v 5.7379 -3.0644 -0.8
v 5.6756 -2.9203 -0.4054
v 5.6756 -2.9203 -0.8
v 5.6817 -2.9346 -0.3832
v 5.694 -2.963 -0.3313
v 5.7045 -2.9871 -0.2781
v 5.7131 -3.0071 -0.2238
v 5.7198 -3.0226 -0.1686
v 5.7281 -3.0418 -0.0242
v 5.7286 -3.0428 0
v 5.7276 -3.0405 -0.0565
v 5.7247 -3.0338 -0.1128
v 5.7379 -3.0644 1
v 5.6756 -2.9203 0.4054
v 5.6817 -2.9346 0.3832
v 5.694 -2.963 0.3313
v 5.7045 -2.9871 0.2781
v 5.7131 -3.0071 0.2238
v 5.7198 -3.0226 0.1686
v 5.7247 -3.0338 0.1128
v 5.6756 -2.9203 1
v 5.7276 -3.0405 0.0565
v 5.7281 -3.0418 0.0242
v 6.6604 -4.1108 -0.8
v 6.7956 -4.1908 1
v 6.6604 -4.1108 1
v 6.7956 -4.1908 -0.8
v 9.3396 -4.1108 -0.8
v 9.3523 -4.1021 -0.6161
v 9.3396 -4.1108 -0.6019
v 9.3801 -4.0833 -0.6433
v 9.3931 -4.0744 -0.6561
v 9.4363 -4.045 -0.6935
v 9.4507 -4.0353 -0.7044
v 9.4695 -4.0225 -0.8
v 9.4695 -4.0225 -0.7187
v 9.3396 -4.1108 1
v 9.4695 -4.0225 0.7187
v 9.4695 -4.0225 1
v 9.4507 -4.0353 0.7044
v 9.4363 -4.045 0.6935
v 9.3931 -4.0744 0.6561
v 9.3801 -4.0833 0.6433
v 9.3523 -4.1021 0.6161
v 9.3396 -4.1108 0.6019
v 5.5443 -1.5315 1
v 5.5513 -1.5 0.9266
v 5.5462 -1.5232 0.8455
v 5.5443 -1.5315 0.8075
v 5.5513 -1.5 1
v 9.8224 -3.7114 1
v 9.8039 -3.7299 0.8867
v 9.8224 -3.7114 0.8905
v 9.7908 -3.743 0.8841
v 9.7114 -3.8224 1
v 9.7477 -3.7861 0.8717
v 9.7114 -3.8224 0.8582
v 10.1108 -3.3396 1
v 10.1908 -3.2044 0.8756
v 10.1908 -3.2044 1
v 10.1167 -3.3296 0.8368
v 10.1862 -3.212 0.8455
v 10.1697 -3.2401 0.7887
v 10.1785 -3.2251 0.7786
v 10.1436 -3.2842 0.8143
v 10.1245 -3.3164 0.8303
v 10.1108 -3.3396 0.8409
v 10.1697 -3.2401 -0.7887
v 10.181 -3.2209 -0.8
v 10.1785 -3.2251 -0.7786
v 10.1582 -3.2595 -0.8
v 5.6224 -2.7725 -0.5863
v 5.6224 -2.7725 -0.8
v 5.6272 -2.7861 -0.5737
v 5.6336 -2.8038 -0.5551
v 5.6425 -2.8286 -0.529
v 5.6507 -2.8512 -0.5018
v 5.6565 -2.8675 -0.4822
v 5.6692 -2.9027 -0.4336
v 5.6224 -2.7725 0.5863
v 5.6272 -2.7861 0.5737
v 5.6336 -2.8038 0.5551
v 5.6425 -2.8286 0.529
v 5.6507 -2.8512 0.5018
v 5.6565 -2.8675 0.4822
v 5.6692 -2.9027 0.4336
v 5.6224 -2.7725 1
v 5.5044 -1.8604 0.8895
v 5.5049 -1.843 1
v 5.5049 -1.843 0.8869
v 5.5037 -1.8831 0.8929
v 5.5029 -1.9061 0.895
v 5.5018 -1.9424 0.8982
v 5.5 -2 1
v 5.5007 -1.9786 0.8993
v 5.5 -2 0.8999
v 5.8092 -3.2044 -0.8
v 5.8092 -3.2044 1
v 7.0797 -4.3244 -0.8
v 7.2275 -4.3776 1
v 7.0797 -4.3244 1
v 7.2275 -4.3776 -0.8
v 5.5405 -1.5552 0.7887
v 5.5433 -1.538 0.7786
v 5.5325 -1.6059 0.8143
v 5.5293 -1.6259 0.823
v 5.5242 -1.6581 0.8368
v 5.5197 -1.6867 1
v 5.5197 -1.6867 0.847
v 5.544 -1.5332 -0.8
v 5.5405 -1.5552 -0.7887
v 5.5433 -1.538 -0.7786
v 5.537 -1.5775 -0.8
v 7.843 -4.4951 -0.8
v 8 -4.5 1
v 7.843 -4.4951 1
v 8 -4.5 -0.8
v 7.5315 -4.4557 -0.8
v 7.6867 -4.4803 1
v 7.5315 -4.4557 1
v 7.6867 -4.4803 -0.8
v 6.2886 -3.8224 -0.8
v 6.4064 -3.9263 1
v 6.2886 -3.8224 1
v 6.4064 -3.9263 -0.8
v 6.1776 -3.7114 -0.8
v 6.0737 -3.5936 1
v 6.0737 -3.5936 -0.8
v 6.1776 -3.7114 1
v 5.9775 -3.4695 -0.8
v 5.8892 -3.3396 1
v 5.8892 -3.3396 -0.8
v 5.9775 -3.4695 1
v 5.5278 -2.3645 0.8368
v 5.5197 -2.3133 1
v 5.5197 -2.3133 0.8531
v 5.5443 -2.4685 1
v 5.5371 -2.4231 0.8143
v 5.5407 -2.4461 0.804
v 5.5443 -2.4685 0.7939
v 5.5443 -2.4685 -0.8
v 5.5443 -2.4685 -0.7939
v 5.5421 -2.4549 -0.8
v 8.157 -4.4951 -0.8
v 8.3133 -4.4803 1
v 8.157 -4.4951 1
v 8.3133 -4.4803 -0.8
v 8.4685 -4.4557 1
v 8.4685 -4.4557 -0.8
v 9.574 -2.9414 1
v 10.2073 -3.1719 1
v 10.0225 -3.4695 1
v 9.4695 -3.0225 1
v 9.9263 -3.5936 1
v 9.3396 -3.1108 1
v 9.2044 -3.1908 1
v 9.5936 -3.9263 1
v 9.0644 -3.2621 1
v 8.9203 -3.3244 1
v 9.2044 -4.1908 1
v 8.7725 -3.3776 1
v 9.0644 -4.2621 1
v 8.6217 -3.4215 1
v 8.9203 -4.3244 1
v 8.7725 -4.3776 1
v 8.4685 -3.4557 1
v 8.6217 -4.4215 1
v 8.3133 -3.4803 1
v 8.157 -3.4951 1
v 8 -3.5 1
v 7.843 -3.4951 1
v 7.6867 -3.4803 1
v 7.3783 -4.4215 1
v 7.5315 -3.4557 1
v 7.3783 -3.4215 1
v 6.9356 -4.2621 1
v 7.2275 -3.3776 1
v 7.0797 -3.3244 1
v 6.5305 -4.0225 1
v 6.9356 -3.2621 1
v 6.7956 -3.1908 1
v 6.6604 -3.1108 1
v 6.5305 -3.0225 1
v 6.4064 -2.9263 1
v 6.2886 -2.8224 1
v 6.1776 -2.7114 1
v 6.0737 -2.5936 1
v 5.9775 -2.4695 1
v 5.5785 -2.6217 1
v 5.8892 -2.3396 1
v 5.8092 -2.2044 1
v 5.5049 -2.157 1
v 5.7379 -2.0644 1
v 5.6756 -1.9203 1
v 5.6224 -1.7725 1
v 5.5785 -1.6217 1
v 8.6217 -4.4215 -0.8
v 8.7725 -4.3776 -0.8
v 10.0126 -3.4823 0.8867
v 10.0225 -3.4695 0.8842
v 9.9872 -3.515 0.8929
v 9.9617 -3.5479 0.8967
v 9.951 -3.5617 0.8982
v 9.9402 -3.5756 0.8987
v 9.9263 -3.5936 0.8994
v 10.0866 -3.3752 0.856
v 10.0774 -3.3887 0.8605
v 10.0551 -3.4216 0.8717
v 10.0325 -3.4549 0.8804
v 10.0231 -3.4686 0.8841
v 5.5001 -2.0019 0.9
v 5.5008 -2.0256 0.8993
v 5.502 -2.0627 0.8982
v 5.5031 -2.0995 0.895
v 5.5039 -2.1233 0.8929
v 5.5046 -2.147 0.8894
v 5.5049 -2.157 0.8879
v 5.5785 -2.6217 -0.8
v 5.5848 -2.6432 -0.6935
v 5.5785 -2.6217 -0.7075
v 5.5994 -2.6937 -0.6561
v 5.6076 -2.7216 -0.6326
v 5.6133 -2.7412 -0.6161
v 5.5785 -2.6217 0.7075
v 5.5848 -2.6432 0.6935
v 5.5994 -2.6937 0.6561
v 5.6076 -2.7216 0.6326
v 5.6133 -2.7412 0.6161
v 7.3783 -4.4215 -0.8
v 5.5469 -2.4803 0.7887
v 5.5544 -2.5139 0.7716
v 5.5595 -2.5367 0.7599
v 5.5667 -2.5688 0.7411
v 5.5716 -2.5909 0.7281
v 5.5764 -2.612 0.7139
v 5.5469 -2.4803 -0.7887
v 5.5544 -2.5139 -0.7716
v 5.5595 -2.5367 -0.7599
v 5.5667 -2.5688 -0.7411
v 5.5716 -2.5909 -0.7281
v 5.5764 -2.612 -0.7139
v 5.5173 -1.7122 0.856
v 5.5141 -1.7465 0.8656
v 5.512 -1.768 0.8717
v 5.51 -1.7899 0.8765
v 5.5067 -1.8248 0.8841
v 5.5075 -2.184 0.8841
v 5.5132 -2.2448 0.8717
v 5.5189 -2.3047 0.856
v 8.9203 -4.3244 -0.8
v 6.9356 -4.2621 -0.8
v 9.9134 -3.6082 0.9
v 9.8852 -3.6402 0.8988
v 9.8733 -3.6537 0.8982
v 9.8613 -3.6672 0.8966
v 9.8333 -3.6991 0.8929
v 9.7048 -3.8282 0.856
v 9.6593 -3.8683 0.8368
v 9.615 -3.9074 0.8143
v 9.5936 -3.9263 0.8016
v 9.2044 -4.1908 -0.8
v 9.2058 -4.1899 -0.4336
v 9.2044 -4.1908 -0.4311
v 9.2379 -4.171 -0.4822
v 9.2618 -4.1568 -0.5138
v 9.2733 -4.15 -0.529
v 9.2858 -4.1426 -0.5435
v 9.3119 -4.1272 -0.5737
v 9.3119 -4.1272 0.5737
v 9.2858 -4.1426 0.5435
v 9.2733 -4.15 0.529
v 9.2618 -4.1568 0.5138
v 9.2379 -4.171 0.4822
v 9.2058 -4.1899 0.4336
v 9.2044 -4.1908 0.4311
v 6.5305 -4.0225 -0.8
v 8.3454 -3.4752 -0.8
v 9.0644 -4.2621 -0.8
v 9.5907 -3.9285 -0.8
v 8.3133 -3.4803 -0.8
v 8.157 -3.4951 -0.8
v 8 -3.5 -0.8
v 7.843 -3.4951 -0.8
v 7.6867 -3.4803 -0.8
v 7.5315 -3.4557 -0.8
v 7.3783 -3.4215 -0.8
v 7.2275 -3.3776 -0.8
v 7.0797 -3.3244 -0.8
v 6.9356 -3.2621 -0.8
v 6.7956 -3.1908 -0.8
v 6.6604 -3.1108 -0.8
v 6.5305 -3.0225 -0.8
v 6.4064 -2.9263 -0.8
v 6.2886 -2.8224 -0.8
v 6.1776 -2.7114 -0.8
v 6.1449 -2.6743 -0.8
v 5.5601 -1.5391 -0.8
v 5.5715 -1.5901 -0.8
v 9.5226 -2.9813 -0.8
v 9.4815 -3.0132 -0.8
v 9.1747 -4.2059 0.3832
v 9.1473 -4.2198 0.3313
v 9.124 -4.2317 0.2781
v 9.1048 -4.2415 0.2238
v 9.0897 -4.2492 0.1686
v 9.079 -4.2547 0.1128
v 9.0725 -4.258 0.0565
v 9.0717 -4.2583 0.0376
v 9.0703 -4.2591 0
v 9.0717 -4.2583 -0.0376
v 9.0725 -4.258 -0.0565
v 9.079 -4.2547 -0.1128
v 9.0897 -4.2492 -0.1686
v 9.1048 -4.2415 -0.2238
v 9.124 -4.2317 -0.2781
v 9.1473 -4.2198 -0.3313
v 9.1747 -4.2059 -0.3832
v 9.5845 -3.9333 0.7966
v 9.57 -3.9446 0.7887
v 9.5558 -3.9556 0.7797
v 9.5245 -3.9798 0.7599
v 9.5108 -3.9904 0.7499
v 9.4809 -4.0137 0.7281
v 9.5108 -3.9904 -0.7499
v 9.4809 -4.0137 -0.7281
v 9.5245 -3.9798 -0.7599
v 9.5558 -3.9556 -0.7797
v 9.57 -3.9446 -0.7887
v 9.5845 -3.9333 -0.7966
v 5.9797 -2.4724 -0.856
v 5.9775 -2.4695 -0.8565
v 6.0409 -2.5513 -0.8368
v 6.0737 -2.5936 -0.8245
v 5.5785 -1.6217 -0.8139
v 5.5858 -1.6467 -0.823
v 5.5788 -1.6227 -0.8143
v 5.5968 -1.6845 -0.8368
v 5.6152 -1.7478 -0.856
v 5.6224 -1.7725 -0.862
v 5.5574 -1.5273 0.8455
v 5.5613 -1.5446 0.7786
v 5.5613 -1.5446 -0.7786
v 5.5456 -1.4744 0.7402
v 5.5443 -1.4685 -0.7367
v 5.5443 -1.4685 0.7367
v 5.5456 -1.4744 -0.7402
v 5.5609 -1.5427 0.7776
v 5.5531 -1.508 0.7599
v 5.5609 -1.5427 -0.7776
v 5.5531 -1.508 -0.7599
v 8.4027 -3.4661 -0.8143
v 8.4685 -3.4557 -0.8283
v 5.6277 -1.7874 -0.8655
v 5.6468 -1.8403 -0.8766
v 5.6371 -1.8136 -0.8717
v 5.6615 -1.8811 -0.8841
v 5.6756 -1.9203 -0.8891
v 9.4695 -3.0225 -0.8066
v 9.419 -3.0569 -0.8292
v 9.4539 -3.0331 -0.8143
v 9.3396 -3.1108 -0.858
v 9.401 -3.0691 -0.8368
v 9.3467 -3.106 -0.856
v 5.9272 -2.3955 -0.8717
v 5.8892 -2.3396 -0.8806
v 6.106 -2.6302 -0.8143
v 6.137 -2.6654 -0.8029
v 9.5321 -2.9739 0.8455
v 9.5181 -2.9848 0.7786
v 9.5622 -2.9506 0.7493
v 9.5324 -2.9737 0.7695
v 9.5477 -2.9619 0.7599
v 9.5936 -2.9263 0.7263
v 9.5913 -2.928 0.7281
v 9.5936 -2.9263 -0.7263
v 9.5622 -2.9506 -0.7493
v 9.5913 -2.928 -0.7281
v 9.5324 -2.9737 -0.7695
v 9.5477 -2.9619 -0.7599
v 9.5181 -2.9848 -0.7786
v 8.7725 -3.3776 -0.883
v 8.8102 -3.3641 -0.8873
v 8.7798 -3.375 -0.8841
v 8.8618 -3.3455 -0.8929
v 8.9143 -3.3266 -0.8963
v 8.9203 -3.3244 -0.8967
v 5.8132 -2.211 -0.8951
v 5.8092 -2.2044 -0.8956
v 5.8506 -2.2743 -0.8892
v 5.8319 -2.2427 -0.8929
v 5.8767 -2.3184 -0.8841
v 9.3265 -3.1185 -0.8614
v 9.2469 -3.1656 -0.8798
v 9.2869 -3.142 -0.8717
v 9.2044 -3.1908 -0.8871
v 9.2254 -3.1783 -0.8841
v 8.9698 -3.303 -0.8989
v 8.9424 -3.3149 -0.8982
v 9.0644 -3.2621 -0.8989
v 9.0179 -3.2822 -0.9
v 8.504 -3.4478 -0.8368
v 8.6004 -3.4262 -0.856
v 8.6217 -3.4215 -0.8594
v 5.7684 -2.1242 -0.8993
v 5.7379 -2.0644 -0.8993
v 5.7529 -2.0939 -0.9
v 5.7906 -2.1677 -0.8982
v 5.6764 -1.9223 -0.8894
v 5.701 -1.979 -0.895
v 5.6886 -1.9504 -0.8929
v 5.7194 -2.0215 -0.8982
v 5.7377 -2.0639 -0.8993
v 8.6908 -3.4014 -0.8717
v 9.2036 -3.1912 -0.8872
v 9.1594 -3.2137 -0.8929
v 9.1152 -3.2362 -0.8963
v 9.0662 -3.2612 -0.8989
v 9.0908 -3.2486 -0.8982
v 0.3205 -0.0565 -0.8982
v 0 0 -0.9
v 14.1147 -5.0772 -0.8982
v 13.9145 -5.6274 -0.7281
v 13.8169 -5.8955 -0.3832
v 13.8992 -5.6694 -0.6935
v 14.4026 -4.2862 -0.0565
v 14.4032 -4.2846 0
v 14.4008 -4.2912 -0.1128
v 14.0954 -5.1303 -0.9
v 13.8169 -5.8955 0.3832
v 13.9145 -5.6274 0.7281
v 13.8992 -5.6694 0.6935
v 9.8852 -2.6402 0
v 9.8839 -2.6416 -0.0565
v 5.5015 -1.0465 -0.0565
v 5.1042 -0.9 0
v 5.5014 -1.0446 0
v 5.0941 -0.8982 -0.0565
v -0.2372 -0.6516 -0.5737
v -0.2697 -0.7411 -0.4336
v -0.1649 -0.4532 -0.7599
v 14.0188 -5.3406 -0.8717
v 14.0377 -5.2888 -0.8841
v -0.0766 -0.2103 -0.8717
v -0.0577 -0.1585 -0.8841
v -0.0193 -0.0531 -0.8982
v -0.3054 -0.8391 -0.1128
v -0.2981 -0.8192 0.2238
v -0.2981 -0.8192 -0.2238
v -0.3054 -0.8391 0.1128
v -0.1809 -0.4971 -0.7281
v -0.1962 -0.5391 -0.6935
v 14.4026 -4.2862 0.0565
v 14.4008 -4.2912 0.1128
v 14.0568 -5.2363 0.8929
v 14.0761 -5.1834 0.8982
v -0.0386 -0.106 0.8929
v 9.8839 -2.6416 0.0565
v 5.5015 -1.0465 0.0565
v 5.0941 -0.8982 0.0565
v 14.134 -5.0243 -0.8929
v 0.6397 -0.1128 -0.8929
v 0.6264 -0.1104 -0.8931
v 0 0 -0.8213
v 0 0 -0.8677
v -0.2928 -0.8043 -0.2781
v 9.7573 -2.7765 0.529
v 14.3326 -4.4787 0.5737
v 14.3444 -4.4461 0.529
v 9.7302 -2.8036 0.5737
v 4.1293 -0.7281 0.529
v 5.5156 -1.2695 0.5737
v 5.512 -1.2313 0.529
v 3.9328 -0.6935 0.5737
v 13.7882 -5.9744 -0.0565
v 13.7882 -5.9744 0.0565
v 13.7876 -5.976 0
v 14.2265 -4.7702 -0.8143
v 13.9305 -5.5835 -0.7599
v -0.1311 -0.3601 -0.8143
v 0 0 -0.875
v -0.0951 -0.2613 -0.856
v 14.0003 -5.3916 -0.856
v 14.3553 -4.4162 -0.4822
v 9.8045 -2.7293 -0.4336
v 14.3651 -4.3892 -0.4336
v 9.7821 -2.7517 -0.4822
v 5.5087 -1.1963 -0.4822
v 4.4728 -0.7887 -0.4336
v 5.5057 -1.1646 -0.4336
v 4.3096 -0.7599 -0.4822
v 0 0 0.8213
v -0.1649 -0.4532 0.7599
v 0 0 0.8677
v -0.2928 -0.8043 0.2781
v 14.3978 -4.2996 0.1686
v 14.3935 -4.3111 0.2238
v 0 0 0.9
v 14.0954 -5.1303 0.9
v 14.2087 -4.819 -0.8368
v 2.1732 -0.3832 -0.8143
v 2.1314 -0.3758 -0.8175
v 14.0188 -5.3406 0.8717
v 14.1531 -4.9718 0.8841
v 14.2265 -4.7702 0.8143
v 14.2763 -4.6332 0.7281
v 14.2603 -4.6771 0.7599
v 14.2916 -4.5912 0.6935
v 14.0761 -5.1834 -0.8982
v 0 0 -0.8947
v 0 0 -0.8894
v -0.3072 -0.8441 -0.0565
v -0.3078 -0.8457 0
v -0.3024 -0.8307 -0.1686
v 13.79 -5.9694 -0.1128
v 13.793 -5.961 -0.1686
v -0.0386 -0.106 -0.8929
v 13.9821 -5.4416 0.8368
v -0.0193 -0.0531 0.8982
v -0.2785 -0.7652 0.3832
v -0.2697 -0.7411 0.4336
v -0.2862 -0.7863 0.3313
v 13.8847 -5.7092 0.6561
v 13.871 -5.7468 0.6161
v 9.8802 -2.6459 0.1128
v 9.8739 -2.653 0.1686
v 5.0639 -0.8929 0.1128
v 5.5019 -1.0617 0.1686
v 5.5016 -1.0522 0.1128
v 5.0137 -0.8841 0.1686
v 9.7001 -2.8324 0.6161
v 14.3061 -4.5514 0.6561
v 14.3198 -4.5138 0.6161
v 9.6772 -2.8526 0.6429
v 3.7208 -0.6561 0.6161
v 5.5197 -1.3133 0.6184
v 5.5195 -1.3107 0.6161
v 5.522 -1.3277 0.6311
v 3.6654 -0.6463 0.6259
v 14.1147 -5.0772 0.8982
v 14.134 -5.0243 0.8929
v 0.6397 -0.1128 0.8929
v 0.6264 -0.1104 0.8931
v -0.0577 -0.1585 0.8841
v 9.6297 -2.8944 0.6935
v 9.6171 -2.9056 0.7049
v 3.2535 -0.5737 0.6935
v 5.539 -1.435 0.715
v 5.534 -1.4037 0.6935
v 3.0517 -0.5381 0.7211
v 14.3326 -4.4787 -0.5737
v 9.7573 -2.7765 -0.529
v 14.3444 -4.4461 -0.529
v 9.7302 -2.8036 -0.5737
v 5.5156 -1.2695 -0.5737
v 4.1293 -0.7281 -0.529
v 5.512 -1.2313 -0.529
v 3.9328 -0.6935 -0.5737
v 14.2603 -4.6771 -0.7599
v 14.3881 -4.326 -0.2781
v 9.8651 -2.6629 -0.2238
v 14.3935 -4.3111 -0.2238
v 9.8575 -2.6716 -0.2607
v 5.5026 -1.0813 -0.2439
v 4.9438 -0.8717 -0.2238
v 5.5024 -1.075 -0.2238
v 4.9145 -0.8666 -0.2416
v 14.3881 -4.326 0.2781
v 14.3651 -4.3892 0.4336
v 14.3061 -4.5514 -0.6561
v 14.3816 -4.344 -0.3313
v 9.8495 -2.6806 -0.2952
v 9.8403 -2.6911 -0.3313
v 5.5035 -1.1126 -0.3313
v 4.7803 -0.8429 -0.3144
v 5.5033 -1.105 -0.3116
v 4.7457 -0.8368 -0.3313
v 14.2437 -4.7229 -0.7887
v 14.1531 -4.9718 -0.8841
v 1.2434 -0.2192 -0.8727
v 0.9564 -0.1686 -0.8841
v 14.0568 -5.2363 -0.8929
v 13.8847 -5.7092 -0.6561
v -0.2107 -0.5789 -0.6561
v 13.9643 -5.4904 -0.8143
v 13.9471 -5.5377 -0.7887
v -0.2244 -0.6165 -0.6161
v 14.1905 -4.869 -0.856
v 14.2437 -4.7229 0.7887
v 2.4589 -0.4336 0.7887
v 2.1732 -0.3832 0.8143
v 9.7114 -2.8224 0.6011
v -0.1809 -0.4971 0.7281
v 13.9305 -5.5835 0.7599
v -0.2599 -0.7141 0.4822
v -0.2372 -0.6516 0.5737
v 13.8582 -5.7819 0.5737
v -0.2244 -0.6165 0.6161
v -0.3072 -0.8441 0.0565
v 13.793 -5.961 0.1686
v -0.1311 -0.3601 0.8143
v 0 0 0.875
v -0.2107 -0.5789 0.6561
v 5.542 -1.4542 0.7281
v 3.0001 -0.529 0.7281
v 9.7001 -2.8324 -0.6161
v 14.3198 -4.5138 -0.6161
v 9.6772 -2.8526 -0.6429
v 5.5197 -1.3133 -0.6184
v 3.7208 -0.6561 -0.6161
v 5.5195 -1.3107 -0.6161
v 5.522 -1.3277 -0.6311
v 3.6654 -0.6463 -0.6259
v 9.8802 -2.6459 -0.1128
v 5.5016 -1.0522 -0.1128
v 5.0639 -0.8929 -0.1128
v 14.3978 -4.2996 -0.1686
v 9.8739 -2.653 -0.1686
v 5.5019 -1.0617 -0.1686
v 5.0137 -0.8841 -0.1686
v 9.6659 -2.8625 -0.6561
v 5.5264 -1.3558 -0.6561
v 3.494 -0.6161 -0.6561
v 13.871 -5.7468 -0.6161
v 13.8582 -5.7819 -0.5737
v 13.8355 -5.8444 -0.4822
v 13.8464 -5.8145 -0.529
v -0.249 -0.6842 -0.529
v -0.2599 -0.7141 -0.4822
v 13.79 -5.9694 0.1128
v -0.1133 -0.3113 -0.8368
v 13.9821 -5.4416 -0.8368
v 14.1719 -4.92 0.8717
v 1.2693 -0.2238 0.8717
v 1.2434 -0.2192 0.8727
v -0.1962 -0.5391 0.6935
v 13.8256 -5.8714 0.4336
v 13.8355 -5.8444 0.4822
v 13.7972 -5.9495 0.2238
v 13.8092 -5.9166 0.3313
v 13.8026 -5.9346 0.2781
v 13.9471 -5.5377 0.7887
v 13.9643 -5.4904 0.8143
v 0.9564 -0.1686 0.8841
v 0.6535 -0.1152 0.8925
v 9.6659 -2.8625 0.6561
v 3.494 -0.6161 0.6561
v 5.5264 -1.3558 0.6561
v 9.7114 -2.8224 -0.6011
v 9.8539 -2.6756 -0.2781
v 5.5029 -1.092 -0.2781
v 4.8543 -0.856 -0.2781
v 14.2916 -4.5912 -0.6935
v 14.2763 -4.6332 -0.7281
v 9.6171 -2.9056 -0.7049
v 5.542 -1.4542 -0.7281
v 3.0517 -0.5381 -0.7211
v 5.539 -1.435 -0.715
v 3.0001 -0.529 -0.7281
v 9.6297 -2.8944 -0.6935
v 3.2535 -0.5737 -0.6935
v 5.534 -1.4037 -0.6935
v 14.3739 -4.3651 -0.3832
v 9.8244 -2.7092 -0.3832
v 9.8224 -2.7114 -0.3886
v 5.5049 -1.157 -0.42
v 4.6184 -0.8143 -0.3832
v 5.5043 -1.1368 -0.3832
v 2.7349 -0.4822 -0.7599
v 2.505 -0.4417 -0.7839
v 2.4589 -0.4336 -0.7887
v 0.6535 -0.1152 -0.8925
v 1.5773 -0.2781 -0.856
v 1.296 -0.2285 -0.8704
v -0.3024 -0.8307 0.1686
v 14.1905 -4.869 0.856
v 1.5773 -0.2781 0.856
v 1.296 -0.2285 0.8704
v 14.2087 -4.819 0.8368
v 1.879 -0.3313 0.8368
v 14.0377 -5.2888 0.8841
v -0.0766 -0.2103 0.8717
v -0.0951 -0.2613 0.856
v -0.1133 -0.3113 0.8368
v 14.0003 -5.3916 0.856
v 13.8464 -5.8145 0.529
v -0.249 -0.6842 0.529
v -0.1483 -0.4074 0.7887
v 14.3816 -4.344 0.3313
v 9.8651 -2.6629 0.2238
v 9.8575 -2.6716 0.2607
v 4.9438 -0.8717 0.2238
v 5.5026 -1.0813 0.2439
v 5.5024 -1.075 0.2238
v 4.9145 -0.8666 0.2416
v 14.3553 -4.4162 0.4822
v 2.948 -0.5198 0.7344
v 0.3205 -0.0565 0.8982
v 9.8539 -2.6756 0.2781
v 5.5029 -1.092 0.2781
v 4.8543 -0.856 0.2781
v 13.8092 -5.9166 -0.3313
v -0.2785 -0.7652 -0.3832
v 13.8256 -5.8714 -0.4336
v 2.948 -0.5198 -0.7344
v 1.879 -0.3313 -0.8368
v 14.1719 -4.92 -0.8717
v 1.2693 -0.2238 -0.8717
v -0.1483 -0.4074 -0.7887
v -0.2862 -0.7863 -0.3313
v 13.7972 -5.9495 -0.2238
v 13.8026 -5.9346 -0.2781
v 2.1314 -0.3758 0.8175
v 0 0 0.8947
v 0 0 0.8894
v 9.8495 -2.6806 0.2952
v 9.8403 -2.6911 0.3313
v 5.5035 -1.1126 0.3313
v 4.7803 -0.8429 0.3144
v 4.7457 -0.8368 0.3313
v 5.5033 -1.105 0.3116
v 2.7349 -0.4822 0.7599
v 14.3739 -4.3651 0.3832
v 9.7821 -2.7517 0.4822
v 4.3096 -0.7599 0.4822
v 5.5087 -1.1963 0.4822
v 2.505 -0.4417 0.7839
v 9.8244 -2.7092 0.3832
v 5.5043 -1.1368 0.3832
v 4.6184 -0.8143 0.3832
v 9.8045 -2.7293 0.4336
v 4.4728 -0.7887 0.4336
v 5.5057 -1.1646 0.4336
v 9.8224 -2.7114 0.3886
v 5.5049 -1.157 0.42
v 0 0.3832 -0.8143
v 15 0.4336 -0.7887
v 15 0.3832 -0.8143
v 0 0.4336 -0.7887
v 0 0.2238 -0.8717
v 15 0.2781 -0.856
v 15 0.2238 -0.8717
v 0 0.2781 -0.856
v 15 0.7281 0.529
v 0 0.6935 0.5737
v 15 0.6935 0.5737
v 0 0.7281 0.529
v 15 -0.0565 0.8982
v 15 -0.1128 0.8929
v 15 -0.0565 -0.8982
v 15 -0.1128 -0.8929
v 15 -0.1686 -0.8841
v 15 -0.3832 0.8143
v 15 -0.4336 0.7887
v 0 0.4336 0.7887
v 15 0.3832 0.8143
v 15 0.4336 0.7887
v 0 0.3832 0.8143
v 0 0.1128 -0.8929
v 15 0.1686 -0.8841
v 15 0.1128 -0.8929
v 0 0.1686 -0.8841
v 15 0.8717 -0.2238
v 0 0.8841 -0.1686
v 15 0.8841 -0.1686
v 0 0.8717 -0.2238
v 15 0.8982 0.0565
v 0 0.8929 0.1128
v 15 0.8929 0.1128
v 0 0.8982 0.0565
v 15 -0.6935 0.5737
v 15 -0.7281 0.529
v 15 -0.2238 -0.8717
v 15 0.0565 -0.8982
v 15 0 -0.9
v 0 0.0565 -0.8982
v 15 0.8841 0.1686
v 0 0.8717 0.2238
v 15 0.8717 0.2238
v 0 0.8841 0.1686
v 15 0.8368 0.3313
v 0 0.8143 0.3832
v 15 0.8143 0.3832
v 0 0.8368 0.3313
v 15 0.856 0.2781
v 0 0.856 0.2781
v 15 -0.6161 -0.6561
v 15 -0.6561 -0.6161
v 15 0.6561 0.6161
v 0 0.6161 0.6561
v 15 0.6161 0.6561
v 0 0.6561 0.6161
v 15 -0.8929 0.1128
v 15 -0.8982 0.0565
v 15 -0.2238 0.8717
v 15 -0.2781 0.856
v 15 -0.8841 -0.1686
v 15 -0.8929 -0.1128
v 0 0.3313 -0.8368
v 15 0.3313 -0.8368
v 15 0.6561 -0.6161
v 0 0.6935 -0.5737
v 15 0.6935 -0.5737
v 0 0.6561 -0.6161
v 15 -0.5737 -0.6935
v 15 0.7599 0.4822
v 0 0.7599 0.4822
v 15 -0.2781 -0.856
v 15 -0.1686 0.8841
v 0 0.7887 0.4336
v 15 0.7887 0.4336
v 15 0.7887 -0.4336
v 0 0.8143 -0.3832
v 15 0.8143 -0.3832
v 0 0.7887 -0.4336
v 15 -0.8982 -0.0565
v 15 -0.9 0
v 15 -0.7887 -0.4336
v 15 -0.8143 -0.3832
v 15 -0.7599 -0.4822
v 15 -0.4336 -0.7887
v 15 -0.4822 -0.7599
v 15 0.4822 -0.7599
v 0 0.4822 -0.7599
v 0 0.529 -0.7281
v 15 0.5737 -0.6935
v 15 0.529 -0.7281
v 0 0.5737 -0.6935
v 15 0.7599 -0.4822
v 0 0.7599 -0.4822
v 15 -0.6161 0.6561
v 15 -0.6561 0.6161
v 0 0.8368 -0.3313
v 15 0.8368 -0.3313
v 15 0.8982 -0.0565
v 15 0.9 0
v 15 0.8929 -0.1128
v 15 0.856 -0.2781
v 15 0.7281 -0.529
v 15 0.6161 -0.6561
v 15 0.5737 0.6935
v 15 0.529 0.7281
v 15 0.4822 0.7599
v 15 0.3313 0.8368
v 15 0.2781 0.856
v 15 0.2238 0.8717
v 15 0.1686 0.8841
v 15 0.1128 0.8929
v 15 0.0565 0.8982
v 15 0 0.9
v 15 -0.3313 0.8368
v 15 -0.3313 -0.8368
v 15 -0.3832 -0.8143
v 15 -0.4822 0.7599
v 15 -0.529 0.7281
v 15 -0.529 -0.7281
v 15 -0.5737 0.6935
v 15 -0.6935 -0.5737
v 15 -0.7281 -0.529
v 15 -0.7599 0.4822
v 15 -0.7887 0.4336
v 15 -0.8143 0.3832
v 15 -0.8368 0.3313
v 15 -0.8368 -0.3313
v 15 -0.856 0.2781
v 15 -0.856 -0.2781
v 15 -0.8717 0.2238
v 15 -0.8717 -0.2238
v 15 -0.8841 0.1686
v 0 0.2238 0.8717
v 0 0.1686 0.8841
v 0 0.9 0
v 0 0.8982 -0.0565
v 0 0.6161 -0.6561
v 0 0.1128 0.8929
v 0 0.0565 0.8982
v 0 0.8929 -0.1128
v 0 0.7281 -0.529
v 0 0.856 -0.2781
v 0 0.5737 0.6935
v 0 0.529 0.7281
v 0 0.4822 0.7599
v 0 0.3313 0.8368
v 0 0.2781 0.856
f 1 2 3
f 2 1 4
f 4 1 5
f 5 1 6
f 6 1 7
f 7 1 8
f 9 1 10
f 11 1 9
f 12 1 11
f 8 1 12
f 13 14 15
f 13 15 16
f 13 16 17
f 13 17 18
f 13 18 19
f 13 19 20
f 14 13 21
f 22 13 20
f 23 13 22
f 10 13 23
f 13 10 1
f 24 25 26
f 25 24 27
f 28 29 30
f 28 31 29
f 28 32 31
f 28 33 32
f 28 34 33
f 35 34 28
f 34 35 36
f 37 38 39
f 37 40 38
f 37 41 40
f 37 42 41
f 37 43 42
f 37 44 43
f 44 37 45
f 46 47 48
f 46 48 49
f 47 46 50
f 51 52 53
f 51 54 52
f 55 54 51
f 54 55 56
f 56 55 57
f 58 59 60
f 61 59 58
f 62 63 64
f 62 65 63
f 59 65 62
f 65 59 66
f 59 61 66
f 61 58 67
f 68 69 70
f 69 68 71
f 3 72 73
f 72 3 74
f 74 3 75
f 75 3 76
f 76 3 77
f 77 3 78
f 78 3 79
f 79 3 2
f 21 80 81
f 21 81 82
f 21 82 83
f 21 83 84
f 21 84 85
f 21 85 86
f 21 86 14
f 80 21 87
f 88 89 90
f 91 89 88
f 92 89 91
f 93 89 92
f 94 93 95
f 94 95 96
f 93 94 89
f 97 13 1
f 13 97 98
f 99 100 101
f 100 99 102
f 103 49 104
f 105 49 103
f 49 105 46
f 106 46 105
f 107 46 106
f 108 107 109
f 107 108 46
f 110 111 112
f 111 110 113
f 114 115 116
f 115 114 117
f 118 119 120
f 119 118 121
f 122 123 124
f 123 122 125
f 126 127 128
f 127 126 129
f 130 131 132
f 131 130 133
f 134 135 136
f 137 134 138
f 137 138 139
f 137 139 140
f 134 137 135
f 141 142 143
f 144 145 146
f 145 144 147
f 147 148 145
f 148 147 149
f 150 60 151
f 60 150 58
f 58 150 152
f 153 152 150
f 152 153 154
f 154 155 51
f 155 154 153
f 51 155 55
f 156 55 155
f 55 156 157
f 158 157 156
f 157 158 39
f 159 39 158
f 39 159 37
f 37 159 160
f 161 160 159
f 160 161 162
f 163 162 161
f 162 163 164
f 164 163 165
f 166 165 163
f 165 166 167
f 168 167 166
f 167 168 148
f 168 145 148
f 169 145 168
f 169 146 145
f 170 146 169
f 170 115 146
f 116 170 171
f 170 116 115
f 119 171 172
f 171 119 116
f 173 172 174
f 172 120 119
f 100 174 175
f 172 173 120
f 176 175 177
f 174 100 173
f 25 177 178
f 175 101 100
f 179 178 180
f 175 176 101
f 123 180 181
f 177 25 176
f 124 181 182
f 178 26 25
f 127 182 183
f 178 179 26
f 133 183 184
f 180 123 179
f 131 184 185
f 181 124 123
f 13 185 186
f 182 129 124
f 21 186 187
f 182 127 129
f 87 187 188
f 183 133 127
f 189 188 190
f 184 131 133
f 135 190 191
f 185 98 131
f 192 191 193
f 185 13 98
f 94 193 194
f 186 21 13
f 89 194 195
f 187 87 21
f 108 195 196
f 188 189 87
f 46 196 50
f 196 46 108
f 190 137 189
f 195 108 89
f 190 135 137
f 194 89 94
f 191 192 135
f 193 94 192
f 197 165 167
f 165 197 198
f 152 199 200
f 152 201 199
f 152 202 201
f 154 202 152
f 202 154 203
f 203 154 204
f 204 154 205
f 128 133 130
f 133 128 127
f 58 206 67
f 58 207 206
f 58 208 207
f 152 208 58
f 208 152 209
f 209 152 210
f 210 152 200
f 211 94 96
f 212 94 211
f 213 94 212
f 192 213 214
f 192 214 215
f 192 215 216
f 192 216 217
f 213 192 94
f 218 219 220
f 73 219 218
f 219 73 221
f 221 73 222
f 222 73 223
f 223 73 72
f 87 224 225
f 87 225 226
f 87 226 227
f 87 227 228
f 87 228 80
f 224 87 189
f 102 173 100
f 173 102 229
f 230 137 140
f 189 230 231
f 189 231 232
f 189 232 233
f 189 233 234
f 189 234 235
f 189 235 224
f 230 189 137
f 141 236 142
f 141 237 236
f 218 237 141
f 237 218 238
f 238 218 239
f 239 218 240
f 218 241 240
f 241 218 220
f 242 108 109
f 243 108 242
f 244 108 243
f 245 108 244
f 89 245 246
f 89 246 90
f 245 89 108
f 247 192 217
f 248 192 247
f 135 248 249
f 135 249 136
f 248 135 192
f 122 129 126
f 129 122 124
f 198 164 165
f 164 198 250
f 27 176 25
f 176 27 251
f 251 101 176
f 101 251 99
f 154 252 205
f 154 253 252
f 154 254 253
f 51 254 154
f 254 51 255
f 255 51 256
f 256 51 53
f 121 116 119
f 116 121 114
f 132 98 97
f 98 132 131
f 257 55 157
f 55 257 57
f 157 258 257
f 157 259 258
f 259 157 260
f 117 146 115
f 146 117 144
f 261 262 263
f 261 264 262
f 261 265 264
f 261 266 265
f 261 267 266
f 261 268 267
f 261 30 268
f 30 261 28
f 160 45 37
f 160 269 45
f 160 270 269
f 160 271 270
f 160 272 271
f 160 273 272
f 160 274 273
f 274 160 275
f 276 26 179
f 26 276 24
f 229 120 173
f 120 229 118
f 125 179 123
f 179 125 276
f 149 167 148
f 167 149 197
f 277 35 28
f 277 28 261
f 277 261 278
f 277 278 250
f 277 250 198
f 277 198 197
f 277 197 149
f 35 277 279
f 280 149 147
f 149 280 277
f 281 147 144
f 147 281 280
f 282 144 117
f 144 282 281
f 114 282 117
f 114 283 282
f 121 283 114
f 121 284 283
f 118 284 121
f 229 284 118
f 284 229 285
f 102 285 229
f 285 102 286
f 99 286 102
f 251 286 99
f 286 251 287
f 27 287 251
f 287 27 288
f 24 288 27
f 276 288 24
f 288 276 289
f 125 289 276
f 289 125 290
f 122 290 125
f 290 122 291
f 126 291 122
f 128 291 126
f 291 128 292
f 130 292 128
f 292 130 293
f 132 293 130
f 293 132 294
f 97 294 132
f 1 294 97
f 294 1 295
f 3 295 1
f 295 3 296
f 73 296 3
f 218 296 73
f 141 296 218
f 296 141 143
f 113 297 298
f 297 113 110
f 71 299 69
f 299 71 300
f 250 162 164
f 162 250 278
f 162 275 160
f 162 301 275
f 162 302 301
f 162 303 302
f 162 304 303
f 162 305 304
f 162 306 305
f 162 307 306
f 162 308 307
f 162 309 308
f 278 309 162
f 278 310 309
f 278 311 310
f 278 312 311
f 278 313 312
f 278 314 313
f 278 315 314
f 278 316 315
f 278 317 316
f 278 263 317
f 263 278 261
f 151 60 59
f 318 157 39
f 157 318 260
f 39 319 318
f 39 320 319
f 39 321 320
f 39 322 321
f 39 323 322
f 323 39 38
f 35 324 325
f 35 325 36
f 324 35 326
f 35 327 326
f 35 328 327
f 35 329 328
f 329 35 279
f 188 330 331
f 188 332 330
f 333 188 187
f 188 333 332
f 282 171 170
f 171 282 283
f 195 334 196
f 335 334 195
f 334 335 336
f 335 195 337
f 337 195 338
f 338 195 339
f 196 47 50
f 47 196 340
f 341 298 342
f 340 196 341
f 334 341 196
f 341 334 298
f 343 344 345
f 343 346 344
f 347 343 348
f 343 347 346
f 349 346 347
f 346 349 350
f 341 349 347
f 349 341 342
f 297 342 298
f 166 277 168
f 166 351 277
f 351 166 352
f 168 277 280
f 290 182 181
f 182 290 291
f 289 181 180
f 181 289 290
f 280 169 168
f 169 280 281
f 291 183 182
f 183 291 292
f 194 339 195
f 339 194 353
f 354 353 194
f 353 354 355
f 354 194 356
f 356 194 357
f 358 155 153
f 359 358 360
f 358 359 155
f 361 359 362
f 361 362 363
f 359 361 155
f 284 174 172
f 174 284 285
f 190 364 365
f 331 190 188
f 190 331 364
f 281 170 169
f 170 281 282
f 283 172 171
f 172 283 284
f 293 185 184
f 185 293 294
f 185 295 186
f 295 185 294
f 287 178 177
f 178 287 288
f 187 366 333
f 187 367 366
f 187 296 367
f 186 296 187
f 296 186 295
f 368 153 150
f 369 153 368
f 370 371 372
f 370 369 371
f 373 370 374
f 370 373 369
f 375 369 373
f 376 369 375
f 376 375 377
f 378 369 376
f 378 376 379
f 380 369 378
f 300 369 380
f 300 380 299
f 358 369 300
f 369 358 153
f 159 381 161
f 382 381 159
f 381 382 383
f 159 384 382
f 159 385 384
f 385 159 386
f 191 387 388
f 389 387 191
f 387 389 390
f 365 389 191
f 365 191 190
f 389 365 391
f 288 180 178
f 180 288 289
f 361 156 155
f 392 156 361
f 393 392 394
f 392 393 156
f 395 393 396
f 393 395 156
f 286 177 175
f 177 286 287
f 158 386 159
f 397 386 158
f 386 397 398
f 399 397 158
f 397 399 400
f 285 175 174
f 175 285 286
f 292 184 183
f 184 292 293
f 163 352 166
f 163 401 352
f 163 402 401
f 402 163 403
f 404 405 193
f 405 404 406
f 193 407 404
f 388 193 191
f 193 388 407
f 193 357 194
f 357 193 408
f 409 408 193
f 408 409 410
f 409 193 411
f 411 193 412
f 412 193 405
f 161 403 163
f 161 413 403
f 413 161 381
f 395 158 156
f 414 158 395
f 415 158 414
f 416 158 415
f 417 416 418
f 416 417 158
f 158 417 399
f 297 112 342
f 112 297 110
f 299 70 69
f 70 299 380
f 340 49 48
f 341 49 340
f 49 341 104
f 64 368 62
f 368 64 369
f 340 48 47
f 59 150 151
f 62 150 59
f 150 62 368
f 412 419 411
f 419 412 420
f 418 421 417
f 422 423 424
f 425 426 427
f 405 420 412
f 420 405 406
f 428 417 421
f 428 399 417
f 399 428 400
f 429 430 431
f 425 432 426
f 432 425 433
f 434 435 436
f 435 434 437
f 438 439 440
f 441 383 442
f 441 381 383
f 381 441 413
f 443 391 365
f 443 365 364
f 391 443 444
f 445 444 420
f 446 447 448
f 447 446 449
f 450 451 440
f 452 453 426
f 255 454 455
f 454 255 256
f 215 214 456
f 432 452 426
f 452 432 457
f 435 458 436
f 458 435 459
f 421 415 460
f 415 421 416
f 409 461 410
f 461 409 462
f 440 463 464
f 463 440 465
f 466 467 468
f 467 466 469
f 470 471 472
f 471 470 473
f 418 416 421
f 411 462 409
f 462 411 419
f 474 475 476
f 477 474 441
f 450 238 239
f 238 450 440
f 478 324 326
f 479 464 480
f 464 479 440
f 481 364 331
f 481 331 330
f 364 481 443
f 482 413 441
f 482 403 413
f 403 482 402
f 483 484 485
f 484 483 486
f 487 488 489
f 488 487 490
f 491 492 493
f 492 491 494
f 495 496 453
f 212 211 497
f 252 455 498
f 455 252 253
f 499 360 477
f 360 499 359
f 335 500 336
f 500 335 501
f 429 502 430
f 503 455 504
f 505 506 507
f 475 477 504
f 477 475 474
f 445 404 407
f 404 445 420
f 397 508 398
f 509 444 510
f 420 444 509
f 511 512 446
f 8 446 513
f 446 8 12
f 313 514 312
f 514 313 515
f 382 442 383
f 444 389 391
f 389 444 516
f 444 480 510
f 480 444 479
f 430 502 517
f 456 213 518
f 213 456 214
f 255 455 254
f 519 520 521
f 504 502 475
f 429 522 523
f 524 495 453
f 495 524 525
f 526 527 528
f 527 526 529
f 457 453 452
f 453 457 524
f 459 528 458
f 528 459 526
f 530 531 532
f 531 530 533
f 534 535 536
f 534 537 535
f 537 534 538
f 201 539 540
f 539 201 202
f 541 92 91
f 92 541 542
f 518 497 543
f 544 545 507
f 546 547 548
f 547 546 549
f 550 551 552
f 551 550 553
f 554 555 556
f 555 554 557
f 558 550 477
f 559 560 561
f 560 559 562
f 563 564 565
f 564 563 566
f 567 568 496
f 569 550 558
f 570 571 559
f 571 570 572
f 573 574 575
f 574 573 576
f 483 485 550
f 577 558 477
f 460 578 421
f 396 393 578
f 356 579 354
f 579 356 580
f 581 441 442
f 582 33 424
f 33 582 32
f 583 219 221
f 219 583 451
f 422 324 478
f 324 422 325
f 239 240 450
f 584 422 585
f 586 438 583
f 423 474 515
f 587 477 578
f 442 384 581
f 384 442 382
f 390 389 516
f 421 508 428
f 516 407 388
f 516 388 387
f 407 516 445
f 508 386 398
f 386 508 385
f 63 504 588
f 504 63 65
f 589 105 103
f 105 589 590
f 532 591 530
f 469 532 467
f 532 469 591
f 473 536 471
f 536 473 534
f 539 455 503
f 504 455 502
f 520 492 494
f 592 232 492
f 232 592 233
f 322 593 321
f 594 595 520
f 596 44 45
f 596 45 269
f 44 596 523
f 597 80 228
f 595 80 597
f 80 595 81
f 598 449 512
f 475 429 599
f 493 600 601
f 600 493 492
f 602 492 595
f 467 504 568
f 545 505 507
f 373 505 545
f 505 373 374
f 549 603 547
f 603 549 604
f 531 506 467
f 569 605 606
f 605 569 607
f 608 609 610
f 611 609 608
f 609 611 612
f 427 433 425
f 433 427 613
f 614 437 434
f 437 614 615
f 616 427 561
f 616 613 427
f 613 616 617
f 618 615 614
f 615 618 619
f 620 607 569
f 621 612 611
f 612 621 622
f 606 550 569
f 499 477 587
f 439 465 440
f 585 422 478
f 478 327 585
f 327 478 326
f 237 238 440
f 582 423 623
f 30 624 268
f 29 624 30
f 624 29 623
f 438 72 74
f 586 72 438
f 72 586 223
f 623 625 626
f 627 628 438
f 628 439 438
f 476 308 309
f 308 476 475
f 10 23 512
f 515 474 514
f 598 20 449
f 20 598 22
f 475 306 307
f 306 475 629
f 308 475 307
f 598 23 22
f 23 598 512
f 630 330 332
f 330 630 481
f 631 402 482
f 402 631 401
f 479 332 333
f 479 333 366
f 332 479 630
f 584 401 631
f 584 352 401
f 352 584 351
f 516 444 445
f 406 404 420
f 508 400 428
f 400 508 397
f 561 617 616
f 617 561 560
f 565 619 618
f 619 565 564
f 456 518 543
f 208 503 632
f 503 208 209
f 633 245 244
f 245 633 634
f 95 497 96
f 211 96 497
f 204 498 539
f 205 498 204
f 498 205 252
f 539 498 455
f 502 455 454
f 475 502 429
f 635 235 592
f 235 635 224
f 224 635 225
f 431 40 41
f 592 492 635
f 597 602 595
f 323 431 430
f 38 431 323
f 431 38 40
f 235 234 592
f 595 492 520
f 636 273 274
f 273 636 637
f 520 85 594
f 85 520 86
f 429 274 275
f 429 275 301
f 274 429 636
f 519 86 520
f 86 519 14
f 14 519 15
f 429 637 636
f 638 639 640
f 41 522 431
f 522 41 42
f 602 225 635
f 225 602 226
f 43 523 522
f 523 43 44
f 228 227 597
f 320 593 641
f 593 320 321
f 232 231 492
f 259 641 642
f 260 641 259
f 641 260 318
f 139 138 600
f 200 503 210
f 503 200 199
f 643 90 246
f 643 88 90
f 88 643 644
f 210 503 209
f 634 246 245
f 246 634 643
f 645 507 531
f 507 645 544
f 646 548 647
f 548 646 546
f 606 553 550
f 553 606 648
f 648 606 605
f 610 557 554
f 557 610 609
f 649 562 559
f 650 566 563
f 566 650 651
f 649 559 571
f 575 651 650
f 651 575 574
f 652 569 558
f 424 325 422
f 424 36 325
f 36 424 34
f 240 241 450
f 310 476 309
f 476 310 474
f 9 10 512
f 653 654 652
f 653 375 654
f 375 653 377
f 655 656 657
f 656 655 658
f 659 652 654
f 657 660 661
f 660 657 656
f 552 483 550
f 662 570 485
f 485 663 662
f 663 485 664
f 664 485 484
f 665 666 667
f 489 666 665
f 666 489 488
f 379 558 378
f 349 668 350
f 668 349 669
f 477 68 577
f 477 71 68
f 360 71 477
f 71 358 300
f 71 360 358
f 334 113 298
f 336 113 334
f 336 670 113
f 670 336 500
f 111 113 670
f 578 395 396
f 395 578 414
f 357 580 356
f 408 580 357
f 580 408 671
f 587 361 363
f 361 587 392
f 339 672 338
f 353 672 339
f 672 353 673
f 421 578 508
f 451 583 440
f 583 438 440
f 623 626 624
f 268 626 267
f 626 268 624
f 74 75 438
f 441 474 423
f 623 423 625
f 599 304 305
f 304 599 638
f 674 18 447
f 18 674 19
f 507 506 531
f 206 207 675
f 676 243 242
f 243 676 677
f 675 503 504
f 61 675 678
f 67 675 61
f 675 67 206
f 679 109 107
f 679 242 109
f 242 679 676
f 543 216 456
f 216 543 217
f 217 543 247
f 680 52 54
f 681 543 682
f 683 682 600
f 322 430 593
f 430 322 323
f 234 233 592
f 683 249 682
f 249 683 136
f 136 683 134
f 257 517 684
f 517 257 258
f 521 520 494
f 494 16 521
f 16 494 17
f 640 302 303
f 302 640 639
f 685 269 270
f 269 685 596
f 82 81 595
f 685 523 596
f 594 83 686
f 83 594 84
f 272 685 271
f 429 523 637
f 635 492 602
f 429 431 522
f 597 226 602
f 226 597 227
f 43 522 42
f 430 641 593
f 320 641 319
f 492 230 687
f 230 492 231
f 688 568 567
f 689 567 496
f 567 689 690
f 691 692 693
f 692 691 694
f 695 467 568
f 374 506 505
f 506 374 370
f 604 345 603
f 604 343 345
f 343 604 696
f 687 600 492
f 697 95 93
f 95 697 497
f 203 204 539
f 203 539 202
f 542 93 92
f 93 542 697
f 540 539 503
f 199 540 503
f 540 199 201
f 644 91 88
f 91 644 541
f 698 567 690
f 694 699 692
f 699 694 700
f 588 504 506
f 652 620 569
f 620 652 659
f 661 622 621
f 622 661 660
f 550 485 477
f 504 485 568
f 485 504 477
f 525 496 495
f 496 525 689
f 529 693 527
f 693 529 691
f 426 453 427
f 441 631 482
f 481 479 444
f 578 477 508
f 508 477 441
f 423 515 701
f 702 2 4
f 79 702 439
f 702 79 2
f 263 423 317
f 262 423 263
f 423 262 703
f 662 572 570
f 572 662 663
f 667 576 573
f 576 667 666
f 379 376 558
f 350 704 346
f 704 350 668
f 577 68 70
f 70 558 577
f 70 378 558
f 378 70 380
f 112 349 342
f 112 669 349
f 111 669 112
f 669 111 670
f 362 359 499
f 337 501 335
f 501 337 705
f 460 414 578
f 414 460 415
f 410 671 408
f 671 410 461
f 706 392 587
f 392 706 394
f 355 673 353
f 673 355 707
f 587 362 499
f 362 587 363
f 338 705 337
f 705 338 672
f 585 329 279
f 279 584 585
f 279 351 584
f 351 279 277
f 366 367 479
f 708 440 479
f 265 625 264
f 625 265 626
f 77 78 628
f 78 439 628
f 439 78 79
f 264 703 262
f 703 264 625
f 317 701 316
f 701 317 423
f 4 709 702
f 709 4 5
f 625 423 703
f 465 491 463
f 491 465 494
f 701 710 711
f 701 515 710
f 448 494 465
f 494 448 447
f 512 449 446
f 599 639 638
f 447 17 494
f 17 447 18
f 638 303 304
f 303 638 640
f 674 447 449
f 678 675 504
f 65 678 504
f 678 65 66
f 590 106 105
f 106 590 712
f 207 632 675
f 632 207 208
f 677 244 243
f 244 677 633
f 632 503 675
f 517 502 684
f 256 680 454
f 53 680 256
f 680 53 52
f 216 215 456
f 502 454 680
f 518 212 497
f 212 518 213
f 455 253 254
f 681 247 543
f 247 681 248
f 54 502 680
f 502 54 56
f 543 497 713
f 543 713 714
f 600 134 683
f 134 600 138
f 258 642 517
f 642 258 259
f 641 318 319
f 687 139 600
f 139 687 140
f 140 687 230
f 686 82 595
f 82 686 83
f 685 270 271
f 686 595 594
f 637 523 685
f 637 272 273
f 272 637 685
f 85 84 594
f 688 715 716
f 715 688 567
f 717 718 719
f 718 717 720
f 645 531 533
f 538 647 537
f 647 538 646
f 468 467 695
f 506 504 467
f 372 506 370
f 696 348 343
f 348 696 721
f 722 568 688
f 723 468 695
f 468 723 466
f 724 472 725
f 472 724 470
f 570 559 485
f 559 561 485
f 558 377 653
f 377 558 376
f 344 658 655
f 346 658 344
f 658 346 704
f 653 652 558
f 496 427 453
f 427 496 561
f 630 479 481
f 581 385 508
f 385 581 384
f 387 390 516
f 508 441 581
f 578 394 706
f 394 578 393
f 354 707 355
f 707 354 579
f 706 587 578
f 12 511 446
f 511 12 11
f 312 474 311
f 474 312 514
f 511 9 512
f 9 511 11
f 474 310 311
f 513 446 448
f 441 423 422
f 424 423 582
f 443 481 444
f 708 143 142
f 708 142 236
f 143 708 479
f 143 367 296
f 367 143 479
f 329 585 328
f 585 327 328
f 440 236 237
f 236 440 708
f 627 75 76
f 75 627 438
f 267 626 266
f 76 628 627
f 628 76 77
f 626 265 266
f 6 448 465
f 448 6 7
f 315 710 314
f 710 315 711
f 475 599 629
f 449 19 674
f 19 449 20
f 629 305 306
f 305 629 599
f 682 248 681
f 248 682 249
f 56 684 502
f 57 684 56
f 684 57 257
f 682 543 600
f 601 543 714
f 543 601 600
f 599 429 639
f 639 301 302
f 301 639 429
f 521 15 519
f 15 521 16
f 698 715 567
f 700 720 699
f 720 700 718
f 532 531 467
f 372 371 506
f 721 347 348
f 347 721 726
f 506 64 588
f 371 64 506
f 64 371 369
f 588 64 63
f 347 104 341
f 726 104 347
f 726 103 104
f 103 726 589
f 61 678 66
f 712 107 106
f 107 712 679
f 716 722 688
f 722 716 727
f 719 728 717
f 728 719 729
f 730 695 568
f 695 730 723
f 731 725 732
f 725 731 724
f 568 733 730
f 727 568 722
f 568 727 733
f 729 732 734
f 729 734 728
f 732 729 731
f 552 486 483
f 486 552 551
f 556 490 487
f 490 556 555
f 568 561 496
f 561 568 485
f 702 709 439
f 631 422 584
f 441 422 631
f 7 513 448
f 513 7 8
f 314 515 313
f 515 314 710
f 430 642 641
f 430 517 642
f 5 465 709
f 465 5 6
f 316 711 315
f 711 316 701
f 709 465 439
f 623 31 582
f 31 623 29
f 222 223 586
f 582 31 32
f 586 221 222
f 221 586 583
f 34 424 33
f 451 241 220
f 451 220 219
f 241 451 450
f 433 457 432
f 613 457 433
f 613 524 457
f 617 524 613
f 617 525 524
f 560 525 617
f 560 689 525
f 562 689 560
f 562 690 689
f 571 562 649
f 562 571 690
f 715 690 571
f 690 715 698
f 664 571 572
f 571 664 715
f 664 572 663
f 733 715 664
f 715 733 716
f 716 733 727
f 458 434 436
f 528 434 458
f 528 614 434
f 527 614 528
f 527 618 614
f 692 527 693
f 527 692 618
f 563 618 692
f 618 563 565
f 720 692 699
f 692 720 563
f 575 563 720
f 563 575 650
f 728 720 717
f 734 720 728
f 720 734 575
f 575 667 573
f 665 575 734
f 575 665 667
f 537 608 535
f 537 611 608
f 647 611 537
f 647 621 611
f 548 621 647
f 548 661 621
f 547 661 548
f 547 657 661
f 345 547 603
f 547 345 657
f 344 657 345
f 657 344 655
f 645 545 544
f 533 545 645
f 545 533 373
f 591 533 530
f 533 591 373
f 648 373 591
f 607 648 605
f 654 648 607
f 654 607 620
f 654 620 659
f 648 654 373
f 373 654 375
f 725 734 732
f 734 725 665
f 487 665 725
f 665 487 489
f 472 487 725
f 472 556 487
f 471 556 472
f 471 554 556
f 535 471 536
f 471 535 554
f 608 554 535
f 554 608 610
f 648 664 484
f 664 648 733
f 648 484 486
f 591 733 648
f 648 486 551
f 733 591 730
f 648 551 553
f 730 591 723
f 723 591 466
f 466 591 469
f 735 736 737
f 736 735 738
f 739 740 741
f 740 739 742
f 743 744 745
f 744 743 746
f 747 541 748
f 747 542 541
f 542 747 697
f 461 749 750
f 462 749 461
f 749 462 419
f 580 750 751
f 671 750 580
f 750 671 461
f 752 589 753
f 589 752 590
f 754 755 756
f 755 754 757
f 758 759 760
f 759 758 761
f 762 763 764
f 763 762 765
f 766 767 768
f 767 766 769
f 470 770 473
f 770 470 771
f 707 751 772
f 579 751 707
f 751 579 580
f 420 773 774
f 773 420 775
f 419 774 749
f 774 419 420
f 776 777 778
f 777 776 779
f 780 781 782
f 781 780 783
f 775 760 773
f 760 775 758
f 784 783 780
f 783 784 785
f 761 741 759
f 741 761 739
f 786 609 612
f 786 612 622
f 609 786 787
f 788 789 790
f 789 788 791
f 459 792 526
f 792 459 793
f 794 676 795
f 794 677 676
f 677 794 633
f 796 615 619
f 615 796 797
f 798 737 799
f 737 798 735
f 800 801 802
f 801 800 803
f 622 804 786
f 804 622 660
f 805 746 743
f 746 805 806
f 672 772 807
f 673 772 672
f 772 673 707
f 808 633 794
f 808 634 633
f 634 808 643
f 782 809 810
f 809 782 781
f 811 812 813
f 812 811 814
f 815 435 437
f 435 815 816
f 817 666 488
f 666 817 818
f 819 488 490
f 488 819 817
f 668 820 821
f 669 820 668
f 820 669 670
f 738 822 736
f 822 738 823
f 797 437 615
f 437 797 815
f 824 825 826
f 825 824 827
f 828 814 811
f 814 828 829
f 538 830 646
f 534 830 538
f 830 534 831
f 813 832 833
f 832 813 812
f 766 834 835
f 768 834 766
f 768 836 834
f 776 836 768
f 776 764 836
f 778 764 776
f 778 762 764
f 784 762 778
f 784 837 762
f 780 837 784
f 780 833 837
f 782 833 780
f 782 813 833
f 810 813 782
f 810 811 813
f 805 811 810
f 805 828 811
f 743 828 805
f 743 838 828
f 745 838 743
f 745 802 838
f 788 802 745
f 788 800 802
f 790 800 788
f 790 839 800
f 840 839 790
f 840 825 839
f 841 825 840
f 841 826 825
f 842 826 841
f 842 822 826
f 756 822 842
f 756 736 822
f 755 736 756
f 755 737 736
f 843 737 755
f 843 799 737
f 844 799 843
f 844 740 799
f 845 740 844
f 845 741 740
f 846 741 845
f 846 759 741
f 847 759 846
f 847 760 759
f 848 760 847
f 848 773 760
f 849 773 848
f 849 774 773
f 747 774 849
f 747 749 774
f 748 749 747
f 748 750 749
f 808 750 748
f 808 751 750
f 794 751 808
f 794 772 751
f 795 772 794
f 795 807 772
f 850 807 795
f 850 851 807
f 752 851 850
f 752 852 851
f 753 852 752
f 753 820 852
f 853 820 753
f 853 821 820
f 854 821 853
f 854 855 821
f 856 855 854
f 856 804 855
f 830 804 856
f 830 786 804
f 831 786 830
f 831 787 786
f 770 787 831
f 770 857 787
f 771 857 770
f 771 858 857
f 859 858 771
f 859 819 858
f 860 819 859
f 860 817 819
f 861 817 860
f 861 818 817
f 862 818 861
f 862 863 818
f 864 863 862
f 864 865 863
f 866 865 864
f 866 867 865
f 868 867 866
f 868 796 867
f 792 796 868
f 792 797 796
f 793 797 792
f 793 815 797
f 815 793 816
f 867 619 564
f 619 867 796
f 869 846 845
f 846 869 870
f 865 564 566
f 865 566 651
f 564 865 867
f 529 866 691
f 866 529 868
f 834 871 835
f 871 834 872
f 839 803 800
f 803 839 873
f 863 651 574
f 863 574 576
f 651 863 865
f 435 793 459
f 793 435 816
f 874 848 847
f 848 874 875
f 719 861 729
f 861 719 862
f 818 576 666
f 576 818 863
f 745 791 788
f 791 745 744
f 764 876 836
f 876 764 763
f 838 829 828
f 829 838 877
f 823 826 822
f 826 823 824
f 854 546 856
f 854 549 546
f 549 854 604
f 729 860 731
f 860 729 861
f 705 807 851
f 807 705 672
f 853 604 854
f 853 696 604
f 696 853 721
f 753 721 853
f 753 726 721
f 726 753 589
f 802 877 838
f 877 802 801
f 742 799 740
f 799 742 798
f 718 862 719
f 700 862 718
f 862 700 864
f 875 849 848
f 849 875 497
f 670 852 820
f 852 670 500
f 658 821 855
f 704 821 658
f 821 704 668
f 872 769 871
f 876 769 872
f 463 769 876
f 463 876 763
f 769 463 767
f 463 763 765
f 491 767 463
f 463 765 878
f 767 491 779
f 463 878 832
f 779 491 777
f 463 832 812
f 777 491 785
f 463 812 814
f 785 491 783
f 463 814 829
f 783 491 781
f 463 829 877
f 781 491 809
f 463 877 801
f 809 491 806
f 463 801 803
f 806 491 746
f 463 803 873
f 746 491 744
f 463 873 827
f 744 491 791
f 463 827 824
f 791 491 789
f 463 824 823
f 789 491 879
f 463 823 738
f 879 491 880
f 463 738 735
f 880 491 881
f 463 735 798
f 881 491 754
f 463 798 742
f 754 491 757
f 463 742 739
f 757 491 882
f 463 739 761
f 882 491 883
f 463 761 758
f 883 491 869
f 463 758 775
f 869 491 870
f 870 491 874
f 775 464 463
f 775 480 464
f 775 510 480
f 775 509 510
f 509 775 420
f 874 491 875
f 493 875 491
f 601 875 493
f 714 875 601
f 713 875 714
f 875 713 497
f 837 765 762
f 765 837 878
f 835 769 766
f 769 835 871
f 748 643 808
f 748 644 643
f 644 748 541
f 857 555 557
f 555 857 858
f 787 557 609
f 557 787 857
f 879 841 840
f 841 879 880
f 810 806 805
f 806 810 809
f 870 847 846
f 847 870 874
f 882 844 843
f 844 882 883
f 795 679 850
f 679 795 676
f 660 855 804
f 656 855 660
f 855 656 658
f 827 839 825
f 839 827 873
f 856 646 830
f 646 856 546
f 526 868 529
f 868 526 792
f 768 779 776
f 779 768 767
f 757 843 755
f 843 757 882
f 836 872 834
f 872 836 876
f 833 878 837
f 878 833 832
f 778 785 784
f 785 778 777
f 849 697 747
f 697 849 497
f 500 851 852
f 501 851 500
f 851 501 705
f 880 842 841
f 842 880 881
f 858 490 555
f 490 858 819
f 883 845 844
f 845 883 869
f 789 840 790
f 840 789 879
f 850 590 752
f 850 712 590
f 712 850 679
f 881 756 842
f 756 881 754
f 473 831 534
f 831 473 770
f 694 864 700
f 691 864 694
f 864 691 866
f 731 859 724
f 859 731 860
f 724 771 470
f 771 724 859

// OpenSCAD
$fn = 100;

hole_diameter = 1.8;
hole_length = 5;
length_offset = 10;

rotate([0, 90, 0]) {
    cylinder(d=hole_diameter, hole_length + length_offset);
    difference() {
        rotate([20, 0, 0]) cylinder(d=hole_diameter, hole_length + length_offset);
        translate([-0.9, -1, 8]) rotate([0, 90, 0]) cylinder(d=hole_length, hole_diameter);
    }
    difference() {
        translate([-1, -2, 8]) rotate([0, 90, 0]) cylinder(d=hole_length, hole_diameter);
        translate([-1, -1, 8]) rotate([0, 90, 0]) cylinder(d=hole_length, hole_diameter);
        translate([0, 4, 0]) rotate([20, 0, 0]) cylinder(d=hole_diameter+5, hole_length + length_offset);
    }
}
